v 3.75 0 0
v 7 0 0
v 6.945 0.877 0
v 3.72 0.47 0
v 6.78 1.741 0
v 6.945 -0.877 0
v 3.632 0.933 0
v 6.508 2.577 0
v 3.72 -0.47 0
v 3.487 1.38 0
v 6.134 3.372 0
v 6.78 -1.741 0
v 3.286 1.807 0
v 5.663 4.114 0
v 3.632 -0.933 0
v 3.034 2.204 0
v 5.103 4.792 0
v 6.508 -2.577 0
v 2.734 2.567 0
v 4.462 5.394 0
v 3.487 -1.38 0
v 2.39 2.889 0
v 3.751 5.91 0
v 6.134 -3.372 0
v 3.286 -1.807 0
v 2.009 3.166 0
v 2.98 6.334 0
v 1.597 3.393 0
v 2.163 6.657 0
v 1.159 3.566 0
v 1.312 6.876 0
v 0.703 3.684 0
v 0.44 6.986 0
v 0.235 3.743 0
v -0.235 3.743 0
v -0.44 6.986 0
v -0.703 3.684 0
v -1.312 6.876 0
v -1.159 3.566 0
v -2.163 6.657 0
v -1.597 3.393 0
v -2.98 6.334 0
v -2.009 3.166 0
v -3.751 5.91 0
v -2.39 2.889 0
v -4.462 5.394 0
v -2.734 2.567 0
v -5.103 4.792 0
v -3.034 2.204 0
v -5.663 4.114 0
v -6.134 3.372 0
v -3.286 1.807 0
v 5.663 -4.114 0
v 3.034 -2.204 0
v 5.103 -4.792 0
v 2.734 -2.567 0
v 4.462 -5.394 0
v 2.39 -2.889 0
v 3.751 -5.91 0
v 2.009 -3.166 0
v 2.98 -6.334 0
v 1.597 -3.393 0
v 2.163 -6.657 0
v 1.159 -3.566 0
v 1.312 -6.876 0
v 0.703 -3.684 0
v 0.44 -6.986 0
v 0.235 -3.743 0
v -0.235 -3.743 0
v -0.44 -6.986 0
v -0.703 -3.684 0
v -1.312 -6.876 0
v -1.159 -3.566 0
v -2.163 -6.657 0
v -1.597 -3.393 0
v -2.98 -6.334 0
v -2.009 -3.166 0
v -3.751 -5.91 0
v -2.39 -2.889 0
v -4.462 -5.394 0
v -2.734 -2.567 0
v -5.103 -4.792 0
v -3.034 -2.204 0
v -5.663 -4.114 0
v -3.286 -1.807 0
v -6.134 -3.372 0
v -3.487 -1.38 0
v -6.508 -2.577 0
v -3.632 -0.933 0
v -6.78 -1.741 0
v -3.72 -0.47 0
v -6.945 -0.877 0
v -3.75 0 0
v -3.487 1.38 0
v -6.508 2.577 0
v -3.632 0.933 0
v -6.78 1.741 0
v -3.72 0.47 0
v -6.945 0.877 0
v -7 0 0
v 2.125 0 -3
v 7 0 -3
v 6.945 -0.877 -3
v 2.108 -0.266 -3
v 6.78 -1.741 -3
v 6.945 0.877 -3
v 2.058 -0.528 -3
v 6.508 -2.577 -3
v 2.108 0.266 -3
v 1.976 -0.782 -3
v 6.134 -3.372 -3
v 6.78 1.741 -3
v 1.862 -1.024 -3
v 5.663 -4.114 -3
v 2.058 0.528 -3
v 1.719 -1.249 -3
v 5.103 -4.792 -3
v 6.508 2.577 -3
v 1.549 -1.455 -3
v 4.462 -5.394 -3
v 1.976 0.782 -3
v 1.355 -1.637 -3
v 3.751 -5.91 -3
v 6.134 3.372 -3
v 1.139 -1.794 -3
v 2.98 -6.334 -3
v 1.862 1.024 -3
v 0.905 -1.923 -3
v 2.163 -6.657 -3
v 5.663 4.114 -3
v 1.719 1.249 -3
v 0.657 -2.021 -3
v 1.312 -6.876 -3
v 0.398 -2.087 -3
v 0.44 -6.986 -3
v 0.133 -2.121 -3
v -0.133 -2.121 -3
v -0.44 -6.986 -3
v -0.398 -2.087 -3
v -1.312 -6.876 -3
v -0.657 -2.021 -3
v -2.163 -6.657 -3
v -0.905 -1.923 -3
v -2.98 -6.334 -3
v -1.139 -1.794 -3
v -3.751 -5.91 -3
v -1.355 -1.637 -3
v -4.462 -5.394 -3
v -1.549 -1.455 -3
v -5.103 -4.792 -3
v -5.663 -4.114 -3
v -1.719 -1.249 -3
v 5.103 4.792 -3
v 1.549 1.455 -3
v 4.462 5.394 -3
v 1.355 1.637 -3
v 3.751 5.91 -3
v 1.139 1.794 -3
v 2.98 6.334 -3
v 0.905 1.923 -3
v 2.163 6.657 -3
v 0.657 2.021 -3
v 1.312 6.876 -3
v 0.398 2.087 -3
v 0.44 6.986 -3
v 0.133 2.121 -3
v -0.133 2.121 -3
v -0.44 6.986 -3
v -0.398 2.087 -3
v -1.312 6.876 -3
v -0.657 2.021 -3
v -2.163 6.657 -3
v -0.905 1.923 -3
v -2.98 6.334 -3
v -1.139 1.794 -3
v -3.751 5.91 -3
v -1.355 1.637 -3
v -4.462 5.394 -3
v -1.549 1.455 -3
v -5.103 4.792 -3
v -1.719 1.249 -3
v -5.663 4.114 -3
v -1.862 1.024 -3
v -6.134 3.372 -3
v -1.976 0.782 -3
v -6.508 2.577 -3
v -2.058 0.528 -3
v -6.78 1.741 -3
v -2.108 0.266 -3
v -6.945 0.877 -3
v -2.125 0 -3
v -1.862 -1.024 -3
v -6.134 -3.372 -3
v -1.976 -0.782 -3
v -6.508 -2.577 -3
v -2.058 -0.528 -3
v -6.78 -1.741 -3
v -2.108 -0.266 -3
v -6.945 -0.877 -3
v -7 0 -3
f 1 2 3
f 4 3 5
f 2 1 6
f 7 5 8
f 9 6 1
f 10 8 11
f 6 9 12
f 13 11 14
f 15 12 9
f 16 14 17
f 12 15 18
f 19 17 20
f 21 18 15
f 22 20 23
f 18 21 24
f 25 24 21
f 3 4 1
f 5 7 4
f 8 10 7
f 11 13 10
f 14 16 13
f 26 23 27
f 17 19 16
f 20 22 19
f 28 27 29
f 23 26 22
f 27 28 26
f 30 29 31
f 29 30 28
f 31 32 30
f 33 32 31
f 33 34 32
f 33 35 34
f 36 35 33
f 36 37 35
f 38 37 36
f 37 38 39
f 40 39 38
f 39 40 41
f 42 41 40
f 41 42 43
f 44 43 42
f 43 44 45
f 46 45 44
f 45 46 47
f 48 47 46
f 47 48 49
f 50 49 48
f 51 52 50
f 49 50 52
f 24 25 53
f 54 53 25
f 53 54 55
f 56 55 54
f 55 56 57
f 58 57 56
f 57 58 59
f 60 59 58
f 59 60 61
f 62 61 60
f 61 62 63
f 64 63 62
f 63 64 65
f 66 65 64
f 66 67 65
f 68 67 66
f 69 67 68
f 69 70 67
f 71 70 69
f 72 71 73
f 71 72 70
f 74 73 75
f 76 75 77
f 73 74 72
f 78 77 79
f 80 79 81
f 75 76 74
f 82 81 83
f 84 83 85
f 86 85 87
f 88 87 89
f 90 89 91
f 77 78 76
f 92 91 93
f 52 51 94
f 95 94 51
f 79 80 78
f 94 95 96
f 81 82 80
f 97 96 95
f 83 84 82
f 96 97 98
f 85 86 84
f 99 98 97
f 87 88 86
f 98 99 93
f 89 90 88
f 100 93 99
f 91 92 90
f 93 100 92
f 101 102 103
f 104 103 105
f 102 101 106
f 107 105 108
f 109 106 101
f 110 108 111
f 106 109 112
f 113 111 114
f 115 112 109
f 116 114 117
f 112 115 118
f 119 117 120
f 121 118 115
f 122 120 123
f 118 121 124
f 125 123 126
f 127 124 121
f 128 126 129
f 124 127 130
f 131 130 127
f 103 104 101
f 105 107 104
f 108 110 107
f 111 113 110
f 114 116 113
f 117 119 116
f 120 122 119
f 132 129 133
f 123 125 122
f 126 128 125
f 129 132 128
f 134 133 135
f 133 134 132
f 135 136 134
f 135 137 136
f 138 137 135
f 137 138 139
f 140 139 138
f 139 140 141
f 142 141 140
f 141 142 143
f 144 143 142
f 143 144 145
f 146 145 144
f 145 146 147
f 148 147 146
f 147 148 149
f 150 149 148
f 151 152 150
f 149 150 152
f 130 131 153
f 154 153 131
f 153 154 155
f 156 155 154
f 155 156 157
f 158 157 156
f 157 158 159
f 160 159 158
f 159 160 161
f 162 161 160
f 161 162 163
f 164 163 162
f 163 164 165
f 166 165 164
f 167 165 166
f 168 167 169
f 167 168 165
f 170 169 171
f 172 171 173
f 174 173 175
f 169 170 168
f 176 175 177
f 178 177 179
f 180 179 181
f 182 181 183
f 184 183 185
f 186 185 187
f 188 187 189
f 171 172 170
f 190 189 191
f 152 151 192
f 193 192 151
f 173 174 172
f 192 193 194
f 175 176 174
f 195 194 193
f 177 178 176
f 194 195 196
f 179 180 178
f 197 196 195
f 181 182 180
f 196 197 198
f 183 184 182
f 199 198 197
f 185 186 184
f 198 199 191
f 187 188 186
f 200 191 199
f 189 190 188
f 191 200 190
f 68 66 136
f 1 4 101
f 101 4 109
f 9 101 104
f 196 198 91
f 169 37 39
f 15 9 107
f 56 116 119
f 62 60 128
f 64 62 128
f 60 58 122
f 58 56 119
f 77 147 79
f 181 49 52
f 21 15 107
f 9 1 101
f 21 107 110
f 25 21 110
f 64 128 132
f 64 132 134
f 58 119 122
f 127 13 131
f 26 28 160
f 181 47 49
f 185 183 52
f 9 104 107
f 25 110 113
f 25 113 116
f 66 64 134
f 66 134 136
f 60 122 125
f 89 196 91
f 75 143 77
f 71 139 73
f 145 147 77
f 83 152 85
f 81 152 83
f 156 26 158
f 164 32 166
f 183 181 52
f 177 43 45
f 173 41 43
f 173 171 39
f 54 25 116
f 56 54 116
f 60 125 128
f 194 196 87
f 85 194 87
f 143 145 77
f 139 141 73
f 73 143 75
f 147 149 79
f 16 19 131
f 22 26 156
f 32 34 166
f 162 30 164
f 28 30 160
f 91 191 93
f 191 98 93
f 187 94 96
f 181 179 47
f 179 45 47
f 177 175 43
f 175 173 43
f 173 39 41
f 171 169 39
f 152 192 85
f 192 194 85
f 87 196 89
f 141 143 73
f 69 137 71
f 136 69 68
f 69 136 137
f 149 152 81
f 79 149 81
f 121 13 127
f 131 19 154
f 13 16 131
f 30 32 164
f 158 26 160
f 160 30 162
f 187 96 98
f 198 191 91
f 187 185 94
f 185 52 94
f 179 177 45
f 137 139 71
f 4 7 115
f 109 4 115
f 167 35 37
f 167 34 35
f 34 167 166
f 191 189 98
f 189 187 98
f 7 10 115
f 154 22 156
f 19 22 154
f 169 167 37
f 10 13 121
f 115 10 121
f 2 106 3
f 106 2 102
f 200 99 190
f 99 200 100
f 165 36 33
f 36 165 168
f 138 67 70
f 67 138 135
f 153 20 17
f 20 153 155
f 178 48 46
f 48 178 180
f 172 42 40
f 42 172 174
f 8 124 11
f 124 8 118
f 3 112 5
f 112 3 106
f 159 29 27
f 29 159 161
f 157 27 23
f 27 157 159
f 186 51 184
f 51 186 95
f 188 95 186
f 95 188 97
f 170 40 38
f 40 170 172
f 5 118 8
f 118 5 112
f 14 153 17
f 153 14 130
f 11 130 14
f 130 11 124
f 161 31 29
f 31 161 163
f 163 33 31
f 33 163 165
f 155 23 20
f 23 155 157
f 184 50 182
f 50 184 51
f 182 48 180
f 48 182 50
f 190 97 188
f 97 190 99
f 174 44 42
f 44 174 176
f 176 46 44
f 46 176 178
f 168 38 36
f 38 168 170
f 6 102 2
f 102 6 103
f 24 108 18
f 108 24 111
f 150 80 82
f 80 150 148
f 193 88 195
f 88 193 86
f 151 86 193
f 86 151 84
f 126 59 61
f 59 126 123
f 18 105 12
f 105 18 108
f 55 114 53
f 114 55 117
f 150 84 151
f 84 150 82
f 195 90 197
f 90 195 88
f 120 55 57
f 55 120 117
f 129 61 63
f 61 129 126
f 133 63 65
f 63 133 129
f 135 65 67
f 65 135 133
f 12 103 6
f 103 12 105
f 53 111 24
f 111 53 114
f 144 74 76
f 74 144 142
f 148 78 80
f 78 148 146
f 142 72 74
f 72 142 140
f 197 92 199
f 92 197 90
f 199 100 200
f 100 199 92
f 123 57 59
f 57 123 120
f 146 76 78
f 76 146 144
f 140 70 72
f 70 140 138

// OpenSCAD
$fn = 50;


difference() {
	union() {
		translate(v = [0, 0, -3.0000000000]) {
			cylinder(h = 3, r = 7.0000000000);
		}
		cylinder(h = 0, r = 13.0000000000);
	}
	union() {
		translate(v = [0, 0, 0]) {
			rotate(a = [0, 0, 0]) {
				difference() {
					union() {
						#translate(v = [0, 0, -3.0000000000]) {
							cylinder(h = 3, r = 2.0000000000);
						}
						#translate(v = [0, 0, -3]) {
							cylinder(h = 3, r = 7.0000000000, r1 = 2.1250000000, r2 = 3.7500000000);
						}
						#translate(v = [0, 0, -3.0000000000]) {
							cylinder(h = 3, r = 2.1250000000);
						}
						#translate(v = [0, 0, -3.0000000000]) {
							cylinder(h = 3, r = 2.0000000000);
						}
					}
					union();
				}
			}
		}
	}
}
